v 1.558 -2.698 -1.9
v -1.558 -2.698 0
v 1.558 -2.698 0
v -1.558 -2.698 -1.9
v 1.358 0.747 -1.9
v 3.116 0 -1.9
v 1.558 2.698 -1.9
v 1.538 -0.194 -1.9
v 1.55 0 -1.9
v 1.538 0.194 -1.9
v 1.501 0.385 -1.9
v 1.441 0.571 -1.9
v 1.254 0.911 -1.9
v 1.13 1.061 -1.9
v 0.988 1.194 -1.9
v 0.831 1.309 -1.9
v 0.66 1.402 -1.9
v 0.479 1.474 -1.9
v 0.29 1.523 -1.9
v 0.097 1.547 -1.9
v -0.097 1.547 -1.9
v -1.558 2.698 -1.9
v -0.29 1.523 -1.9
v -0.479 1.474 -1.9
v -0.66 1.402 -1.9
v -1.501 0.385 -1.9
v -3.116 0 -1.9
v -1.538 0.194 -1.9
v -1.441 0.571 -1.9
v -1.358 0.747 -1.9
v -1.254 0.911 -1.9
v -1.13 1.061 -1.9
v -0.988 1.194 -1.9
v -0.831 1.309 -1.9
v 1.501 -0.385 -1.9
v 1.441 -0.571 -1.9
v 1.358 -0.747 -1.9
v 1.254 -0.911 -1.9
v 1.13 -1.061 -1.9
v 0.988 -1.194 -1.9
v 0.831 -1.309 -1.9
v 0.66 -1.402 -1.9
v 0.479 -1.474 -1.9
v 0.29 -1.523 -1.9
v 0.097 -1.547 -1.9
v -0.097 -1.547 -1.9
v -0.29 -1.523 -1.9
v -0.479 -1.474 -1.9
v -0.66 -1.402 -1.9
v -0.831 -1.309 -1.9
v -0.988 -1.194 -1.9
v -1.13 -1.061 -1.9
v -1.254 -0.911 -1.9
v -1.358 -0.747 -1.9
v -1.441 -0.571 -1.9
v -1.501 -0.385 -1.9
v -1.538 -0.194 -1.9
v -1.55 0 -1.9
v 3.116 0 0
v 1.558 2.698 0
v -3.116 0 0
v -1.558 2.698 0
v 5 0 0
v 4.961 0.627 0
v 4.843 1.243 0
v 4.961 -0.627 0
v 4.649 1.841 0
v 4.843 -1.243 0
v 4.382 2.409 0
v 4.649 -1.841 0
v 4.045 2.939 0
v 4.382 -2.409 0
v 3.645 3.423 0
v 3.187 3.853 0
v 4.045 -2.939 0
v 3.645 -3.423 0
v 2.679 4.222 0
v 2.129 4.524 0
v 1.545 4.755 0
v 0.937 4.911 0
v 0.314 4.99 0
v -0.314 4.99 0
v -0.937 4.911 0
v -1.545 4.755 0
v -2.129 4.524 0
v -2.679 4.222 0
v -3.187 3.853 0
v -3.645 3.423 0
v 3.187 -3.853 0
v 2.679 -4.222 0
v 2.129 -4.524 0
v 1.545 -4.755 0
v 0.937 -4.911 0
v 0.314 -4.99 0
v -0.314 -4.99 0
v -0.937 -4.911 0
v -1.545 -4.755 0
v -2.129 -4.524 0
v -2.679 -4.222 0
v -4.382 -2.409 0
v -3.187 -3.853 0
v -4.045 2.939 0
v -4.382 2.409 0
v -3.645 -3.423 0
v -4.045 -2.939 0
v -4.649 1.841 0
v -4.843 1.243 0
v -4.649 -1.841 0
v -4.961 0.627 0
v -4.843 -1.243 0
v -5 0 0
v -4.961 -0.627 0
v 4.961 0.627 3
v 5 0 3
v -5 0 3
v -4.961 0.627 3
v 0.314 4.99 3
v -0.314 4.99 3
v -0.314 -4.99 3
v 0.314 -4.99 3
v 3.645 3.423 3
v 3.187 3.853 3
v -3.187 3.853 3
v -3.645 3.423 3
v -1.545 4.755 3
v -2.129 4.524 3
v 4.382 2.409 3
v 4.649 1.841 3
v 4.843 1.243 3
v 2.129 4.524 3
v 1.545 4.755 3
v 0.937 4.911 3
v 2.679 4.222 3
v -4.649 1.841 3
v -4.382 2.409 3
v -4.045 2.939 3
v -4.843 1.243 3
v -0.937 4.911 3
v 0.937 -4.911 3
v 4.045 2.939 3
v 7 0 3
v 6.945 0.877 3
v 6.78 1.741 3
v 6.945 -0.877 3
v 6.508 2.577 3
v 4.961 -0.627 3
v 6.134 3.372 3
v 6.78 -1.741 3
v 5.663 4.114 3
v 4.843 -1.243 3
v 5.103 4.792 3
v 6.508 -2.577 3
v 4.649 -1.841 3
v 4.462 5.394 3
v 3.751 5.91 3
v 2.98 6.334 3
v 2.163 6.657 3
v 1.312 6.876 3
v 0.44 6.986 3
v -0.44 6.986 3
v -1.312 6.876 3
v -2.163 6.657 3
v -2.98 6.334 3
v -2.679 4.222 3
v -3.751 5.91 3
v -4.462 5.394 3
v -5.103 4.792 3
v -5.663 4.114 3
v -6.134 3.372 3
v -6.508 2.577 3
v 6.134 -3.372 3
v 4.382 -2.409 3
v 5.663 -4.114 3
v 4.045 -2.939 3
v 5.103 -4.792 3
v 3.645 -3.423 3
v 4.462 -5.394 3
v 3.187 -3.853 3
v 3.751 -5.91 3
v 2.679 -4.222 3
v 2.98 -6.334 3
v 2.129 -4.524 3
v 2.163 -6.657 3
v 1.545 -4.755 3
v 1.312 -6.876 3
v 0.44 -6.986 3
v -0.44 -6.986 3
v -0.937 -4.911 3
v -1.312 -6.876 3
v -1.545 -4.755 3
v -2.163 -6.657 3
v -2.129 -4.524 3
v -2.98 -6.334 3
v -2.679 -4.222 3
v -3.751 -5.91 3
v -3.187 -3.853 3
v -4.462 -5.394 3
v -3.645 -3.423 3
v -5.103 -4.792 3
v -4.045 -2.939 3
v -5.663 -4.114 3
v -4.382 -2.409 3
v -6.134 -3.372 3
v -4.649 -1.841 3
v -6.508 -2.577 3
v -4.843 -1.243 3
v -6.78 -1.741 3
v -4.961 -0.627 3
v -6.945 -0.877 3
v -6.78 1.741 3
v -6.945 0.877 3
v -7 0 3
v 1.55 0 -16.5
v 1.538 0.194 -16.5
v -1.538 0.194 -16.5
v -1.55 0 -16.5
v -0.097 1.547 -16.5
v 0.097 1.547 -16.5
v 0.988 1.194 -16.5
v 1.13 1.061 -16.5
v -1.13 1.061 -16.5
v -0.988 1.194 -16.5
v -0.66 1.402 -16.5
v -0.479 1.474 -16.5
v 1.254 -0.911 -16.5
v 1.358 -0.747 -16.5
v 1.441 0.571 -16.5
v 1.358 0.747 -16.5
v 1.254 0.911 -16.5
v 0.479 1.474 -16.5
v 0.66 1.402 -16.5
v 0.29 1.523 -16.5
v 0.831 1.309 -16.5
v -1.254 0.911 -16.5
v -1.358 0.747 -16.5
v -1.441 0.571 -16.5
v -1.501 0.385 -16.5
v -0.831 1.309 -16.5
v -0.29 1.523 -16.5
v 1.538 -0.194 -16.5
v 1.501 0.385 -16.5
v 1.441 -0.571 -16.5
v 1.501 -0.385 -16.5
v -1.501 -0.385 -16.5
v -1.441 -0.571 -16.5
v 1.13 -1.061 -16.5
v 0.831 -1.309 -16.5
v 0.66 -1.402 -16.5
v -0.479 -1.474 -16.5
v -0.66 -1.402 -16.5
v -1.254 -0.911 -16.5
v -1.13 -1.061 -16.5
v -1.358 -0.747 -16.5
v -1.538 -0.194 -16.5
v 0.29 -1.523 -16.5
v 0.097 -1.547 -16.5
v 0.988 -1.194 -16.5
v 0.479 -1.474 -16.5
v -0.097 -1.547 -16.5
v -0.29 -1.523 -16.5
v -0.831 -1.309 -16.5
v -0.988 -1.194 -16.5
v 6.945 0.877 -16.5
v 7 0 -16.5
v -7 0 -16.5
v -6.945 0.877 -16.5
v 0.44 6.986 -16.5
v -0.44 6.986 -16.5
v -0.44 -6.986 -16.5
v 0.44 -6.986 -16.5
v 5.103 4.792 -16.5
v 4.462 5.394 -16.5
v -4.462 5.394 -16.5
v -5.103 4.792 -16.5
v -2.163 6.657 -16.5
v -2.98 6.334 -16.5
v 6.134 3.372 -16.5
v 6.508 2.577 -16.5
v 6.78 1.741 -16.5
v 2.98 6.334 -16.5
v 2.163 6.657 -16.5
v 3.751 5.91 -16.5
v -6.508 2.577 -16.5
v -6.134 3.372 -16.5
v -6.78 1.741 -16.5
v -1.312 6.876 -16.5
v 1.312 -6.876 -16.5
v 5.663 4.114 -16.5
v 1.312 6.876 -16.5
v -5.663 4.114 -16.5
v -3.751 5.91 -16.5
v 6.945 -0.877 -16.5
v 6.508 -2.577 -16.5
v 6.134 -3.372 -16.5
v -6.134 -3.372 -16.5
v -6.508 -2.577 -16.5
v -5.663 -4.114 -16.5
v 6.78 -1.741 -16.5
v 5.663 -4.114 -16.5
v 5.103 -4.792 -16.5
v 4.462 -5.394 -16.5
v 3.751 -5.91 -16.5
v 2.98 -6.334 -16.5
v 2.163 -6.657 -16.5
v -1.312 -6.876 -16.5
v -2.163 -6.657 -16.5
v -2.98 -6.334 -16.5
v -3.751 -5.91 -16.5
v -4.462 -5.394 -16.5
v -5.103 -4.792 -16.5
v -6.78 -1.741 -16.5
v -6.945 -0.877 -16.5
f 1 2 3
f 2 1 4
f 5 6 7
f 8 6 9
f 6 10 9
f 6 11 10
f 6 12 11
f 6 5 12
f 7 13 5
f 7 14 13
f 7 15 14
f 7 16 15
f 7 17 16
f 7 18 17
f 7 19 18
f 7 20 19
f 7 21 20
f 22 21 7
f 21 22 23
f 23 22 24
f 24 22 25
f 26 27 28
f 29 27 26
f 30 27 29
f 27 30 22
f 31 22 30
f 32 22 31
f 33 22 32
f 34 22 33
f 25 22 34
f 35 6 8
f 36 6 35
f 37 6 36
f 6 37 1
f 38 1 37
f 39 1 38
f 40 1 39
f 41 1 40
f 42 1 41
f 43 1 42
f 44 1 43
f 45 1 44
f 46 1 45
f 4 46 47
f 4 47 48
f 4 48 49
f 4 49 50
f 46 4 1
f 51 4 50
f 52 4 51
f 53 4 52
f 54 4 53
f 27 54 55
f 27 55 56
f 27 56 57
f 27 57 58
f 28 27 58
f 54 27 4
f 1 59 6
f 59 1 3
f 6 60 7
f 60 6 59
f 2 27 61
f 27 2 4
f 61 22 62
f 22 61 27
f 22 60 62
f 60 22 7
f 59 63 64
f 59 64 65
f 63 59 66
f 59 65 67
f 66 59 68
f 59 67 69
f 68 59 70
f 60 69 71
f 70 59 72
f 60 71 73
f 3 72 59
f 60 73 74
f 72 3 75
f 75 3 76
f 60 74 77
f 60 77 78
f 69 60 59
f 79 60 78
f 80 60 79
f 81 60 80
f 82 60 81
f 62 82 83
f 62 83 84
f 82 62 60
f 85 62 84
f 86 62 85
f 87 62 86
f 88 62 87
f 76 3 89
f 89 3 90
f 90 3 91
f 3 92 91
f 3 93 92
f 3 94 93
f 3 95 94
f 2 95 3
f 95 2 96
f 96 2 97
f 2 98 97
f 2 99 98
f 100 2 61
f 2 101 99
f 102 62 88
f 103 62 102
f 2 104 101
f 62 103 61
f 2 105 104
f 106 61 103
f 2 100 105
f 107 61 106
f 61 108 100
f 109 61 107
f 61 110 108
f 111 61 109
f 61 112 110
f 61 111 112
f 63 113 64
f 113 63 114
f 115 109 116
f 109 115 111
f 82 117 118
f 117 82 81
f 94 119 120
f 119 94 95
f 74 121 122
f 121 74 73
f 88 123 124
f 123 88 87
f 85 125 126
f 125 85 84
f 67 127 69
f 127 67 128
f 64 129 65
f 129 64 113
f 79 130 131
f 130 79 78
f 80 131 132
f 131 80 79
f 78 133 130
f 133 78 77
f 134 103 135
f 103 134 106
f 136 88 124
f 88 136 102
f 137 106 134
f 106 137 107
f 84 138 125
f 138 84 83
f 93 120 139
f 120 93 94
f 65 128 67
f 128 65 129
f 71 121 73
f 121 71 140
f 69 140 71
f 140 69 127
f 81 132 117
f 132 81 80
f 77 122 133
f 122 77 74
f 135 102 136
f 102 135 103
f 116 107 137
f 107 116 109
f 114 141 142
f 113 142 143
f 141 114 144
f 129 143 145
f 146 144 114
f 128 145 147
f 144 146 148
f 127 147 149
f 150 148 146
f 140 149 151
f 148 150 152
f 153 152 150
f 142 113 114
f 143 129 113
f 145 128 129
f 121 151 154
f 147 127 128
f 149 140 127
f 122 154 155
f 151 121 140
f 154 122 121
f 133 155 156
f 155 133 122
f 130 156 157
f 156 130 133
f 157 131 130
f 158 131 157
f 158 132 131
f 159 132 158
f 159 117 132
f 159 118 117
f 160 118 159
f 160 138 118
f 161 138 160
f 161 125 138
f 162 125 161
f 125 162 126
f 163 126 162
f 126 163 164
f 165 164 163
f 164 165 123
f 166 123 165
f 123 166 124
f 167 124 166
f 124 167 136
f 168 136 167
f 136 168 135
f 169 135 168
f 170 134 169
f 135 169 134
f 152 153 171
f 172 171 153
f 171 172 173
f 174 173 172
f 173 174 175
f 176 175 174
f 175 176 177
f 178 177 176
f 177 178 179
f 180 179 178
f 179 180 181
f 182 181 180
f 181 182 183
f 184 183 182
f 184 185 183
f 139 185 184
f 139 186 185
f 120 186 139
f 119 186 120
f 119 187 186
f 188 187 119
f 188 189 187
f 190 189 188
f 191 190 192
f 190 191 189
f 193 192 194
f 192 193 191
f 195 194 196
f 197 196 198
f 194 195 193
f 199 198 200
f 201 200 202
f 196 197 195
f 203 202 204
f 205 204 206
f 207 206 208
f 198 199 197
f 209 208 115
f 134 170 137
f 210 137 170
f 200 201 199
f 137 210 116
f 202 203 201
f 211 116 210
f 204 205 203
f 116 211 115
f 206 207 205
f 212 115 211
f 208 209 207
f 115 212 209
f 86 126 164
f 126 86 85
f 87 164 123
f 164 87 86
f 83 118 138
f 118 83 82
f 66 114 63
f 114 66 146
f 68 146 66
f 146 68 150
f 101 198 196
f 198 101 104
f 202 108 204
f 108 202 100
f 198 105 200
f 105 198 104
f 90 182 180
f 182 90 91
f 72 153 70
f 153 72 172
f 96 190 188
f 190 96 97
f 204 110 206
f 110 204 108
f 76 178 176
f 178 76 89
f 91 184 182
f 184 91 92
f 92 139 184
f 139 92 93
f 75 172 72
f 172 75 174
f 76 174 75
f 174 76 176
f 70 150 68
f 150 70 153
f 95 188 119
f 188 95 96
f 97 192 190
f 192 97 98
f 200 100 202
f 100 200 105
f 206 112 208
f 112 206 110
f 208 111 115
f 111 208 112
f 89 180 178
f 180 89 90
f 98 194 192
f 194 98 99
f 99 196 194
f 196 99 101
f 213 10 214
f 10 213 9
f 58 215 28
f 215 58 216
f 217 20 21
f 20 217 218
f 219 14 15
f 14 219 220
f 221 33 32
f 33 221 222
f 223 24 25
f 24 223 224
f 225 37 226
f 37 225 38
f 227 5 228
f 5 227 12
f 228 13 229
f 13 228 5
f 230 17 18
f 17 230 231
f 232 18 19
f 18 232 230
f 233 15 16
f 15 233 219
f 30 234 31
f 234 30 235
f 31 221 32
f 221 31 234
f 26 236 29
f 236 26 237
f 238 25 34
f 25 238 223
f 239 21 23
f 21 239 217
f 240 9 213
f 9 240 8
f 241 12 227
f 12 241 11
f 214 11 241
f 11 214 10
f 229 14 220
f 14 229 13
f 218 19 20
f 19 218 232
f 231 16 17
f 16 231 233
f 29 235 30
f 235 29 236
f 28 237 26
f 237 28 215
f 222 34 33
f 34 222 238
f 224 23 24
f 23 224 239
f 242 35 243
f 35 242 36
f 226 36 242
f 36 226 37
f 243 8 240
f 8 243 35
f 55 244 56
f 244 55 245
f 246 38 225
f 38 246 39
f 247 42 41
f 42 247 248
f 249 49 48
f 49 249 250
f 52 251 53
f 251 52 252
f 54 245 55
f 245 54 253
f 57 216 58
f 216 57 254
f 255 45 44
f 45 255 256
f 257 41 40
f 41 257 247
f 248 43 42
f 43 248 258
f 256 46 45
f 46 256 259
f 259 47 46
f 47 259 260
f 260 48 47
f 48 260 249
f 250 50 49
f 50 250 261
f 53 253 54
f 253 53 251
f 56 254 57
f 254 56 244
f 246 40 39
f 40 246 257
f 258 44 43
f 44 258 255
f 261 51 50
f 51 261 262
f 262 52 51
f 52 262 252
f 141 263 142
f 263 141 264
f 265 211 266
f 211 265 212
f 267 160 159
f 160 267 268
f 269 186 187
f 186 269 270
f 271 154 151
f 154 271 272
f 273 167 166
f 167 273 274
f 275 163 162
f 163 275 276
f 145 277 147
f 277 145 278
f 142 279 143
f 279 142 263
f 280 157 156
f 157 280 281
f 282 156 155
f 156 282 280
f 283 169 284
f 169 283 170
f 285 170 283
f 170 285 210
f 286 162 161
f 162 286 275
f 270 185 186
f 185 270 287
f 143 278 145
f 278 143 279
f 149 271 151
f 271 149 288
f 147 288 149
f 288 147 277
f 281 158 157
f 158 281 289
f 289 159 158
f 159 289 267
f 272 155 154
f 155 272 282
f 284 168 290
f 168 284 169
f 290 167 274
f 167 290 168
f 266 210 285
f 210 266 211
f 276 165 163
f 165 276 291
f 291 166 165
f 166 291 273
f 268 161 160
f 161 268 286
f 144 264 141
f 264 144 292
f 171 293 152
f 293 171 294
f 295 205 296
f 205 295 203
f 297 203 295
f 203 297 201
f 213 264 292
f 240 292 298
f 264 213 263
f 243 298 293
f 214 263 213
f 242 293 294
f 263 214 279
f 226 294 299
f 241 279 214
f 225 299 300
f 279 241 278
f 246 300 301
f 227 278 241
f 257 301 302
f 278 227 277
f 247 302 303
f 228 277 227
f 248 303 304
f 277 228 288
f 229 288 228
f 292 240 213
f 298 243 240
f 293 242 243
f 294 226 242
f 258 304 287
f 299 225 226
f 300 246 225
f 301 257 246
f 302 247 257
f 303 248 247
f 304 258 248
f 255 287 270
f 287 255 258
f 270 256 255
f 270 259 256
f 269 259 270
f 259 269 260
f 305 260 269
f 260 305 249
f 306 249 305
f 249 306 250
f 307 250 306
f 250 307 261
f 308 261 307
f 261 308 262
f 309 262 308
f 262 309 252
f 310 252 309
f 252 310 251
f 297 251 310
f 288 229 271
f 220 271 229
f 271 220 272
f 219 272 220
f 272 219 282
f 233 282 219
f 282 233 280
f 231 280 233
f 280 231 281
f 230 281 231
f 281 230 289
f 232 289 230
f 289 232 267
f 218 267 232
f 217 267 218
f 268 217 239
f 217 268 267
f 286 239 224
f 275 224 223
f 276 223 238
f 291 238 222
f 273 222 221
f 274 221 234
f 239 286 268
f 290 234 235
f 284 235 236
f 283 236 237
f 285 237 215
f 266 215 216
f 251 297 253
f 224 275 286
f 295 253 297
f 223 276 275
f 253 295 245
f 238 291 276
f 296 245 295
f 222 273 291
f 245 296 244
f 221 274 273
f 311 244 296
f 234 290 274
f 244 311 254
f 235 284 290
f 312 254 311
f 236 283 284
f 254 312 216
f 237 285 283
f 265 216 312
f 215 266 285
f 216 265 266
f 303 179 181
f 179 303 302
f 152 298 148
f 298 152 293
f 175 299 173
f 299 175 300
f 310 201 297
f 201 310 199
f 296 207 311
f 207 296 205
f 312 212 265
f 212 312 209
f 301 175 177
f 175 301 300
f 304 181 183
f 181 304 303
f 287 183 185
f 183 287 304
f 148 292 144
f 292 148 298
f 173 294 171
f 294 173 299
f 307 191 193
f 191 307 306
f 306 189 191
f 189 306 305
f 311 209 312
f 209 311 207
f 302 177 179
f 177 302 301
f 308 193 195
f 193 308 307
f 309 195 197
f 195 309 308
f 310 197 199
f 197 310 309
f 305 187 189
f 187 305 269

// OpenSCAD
$fn = 50;

difference() {
	union() {
		translate(v = [0, 0, -16.5]) {
			cylinder(h = 19.5, r = 7.0);
		}
	}
	union() {
		translate(v = [0, 0, 0]) {
			rotate(a = [0, 0, 0]) {
				difference() {
					union() {
						translate(v = [0, 0, -1.9]) {
							linear_extrude(height = 1.9) {
								polygon(points = [[3.1158, 0.0], [1.5579000000000005, 2.698361953111554], [-1.5578999999999994, 2.6983619531115544], [-3.1158, 3.815754496783323e-16], [-1.5579000000000014, -2.6983619531115535], [1.557899999999998, -2.6983619531115552]]);
							}
						}
					}
					union();
				}
			}
		}
		#cylinder(h = 3, r = 5.0);
		#translate(v = [0, 0, -100.0]) {
			cylinder(h = 200, r = 1.55);
		}
	}
}
